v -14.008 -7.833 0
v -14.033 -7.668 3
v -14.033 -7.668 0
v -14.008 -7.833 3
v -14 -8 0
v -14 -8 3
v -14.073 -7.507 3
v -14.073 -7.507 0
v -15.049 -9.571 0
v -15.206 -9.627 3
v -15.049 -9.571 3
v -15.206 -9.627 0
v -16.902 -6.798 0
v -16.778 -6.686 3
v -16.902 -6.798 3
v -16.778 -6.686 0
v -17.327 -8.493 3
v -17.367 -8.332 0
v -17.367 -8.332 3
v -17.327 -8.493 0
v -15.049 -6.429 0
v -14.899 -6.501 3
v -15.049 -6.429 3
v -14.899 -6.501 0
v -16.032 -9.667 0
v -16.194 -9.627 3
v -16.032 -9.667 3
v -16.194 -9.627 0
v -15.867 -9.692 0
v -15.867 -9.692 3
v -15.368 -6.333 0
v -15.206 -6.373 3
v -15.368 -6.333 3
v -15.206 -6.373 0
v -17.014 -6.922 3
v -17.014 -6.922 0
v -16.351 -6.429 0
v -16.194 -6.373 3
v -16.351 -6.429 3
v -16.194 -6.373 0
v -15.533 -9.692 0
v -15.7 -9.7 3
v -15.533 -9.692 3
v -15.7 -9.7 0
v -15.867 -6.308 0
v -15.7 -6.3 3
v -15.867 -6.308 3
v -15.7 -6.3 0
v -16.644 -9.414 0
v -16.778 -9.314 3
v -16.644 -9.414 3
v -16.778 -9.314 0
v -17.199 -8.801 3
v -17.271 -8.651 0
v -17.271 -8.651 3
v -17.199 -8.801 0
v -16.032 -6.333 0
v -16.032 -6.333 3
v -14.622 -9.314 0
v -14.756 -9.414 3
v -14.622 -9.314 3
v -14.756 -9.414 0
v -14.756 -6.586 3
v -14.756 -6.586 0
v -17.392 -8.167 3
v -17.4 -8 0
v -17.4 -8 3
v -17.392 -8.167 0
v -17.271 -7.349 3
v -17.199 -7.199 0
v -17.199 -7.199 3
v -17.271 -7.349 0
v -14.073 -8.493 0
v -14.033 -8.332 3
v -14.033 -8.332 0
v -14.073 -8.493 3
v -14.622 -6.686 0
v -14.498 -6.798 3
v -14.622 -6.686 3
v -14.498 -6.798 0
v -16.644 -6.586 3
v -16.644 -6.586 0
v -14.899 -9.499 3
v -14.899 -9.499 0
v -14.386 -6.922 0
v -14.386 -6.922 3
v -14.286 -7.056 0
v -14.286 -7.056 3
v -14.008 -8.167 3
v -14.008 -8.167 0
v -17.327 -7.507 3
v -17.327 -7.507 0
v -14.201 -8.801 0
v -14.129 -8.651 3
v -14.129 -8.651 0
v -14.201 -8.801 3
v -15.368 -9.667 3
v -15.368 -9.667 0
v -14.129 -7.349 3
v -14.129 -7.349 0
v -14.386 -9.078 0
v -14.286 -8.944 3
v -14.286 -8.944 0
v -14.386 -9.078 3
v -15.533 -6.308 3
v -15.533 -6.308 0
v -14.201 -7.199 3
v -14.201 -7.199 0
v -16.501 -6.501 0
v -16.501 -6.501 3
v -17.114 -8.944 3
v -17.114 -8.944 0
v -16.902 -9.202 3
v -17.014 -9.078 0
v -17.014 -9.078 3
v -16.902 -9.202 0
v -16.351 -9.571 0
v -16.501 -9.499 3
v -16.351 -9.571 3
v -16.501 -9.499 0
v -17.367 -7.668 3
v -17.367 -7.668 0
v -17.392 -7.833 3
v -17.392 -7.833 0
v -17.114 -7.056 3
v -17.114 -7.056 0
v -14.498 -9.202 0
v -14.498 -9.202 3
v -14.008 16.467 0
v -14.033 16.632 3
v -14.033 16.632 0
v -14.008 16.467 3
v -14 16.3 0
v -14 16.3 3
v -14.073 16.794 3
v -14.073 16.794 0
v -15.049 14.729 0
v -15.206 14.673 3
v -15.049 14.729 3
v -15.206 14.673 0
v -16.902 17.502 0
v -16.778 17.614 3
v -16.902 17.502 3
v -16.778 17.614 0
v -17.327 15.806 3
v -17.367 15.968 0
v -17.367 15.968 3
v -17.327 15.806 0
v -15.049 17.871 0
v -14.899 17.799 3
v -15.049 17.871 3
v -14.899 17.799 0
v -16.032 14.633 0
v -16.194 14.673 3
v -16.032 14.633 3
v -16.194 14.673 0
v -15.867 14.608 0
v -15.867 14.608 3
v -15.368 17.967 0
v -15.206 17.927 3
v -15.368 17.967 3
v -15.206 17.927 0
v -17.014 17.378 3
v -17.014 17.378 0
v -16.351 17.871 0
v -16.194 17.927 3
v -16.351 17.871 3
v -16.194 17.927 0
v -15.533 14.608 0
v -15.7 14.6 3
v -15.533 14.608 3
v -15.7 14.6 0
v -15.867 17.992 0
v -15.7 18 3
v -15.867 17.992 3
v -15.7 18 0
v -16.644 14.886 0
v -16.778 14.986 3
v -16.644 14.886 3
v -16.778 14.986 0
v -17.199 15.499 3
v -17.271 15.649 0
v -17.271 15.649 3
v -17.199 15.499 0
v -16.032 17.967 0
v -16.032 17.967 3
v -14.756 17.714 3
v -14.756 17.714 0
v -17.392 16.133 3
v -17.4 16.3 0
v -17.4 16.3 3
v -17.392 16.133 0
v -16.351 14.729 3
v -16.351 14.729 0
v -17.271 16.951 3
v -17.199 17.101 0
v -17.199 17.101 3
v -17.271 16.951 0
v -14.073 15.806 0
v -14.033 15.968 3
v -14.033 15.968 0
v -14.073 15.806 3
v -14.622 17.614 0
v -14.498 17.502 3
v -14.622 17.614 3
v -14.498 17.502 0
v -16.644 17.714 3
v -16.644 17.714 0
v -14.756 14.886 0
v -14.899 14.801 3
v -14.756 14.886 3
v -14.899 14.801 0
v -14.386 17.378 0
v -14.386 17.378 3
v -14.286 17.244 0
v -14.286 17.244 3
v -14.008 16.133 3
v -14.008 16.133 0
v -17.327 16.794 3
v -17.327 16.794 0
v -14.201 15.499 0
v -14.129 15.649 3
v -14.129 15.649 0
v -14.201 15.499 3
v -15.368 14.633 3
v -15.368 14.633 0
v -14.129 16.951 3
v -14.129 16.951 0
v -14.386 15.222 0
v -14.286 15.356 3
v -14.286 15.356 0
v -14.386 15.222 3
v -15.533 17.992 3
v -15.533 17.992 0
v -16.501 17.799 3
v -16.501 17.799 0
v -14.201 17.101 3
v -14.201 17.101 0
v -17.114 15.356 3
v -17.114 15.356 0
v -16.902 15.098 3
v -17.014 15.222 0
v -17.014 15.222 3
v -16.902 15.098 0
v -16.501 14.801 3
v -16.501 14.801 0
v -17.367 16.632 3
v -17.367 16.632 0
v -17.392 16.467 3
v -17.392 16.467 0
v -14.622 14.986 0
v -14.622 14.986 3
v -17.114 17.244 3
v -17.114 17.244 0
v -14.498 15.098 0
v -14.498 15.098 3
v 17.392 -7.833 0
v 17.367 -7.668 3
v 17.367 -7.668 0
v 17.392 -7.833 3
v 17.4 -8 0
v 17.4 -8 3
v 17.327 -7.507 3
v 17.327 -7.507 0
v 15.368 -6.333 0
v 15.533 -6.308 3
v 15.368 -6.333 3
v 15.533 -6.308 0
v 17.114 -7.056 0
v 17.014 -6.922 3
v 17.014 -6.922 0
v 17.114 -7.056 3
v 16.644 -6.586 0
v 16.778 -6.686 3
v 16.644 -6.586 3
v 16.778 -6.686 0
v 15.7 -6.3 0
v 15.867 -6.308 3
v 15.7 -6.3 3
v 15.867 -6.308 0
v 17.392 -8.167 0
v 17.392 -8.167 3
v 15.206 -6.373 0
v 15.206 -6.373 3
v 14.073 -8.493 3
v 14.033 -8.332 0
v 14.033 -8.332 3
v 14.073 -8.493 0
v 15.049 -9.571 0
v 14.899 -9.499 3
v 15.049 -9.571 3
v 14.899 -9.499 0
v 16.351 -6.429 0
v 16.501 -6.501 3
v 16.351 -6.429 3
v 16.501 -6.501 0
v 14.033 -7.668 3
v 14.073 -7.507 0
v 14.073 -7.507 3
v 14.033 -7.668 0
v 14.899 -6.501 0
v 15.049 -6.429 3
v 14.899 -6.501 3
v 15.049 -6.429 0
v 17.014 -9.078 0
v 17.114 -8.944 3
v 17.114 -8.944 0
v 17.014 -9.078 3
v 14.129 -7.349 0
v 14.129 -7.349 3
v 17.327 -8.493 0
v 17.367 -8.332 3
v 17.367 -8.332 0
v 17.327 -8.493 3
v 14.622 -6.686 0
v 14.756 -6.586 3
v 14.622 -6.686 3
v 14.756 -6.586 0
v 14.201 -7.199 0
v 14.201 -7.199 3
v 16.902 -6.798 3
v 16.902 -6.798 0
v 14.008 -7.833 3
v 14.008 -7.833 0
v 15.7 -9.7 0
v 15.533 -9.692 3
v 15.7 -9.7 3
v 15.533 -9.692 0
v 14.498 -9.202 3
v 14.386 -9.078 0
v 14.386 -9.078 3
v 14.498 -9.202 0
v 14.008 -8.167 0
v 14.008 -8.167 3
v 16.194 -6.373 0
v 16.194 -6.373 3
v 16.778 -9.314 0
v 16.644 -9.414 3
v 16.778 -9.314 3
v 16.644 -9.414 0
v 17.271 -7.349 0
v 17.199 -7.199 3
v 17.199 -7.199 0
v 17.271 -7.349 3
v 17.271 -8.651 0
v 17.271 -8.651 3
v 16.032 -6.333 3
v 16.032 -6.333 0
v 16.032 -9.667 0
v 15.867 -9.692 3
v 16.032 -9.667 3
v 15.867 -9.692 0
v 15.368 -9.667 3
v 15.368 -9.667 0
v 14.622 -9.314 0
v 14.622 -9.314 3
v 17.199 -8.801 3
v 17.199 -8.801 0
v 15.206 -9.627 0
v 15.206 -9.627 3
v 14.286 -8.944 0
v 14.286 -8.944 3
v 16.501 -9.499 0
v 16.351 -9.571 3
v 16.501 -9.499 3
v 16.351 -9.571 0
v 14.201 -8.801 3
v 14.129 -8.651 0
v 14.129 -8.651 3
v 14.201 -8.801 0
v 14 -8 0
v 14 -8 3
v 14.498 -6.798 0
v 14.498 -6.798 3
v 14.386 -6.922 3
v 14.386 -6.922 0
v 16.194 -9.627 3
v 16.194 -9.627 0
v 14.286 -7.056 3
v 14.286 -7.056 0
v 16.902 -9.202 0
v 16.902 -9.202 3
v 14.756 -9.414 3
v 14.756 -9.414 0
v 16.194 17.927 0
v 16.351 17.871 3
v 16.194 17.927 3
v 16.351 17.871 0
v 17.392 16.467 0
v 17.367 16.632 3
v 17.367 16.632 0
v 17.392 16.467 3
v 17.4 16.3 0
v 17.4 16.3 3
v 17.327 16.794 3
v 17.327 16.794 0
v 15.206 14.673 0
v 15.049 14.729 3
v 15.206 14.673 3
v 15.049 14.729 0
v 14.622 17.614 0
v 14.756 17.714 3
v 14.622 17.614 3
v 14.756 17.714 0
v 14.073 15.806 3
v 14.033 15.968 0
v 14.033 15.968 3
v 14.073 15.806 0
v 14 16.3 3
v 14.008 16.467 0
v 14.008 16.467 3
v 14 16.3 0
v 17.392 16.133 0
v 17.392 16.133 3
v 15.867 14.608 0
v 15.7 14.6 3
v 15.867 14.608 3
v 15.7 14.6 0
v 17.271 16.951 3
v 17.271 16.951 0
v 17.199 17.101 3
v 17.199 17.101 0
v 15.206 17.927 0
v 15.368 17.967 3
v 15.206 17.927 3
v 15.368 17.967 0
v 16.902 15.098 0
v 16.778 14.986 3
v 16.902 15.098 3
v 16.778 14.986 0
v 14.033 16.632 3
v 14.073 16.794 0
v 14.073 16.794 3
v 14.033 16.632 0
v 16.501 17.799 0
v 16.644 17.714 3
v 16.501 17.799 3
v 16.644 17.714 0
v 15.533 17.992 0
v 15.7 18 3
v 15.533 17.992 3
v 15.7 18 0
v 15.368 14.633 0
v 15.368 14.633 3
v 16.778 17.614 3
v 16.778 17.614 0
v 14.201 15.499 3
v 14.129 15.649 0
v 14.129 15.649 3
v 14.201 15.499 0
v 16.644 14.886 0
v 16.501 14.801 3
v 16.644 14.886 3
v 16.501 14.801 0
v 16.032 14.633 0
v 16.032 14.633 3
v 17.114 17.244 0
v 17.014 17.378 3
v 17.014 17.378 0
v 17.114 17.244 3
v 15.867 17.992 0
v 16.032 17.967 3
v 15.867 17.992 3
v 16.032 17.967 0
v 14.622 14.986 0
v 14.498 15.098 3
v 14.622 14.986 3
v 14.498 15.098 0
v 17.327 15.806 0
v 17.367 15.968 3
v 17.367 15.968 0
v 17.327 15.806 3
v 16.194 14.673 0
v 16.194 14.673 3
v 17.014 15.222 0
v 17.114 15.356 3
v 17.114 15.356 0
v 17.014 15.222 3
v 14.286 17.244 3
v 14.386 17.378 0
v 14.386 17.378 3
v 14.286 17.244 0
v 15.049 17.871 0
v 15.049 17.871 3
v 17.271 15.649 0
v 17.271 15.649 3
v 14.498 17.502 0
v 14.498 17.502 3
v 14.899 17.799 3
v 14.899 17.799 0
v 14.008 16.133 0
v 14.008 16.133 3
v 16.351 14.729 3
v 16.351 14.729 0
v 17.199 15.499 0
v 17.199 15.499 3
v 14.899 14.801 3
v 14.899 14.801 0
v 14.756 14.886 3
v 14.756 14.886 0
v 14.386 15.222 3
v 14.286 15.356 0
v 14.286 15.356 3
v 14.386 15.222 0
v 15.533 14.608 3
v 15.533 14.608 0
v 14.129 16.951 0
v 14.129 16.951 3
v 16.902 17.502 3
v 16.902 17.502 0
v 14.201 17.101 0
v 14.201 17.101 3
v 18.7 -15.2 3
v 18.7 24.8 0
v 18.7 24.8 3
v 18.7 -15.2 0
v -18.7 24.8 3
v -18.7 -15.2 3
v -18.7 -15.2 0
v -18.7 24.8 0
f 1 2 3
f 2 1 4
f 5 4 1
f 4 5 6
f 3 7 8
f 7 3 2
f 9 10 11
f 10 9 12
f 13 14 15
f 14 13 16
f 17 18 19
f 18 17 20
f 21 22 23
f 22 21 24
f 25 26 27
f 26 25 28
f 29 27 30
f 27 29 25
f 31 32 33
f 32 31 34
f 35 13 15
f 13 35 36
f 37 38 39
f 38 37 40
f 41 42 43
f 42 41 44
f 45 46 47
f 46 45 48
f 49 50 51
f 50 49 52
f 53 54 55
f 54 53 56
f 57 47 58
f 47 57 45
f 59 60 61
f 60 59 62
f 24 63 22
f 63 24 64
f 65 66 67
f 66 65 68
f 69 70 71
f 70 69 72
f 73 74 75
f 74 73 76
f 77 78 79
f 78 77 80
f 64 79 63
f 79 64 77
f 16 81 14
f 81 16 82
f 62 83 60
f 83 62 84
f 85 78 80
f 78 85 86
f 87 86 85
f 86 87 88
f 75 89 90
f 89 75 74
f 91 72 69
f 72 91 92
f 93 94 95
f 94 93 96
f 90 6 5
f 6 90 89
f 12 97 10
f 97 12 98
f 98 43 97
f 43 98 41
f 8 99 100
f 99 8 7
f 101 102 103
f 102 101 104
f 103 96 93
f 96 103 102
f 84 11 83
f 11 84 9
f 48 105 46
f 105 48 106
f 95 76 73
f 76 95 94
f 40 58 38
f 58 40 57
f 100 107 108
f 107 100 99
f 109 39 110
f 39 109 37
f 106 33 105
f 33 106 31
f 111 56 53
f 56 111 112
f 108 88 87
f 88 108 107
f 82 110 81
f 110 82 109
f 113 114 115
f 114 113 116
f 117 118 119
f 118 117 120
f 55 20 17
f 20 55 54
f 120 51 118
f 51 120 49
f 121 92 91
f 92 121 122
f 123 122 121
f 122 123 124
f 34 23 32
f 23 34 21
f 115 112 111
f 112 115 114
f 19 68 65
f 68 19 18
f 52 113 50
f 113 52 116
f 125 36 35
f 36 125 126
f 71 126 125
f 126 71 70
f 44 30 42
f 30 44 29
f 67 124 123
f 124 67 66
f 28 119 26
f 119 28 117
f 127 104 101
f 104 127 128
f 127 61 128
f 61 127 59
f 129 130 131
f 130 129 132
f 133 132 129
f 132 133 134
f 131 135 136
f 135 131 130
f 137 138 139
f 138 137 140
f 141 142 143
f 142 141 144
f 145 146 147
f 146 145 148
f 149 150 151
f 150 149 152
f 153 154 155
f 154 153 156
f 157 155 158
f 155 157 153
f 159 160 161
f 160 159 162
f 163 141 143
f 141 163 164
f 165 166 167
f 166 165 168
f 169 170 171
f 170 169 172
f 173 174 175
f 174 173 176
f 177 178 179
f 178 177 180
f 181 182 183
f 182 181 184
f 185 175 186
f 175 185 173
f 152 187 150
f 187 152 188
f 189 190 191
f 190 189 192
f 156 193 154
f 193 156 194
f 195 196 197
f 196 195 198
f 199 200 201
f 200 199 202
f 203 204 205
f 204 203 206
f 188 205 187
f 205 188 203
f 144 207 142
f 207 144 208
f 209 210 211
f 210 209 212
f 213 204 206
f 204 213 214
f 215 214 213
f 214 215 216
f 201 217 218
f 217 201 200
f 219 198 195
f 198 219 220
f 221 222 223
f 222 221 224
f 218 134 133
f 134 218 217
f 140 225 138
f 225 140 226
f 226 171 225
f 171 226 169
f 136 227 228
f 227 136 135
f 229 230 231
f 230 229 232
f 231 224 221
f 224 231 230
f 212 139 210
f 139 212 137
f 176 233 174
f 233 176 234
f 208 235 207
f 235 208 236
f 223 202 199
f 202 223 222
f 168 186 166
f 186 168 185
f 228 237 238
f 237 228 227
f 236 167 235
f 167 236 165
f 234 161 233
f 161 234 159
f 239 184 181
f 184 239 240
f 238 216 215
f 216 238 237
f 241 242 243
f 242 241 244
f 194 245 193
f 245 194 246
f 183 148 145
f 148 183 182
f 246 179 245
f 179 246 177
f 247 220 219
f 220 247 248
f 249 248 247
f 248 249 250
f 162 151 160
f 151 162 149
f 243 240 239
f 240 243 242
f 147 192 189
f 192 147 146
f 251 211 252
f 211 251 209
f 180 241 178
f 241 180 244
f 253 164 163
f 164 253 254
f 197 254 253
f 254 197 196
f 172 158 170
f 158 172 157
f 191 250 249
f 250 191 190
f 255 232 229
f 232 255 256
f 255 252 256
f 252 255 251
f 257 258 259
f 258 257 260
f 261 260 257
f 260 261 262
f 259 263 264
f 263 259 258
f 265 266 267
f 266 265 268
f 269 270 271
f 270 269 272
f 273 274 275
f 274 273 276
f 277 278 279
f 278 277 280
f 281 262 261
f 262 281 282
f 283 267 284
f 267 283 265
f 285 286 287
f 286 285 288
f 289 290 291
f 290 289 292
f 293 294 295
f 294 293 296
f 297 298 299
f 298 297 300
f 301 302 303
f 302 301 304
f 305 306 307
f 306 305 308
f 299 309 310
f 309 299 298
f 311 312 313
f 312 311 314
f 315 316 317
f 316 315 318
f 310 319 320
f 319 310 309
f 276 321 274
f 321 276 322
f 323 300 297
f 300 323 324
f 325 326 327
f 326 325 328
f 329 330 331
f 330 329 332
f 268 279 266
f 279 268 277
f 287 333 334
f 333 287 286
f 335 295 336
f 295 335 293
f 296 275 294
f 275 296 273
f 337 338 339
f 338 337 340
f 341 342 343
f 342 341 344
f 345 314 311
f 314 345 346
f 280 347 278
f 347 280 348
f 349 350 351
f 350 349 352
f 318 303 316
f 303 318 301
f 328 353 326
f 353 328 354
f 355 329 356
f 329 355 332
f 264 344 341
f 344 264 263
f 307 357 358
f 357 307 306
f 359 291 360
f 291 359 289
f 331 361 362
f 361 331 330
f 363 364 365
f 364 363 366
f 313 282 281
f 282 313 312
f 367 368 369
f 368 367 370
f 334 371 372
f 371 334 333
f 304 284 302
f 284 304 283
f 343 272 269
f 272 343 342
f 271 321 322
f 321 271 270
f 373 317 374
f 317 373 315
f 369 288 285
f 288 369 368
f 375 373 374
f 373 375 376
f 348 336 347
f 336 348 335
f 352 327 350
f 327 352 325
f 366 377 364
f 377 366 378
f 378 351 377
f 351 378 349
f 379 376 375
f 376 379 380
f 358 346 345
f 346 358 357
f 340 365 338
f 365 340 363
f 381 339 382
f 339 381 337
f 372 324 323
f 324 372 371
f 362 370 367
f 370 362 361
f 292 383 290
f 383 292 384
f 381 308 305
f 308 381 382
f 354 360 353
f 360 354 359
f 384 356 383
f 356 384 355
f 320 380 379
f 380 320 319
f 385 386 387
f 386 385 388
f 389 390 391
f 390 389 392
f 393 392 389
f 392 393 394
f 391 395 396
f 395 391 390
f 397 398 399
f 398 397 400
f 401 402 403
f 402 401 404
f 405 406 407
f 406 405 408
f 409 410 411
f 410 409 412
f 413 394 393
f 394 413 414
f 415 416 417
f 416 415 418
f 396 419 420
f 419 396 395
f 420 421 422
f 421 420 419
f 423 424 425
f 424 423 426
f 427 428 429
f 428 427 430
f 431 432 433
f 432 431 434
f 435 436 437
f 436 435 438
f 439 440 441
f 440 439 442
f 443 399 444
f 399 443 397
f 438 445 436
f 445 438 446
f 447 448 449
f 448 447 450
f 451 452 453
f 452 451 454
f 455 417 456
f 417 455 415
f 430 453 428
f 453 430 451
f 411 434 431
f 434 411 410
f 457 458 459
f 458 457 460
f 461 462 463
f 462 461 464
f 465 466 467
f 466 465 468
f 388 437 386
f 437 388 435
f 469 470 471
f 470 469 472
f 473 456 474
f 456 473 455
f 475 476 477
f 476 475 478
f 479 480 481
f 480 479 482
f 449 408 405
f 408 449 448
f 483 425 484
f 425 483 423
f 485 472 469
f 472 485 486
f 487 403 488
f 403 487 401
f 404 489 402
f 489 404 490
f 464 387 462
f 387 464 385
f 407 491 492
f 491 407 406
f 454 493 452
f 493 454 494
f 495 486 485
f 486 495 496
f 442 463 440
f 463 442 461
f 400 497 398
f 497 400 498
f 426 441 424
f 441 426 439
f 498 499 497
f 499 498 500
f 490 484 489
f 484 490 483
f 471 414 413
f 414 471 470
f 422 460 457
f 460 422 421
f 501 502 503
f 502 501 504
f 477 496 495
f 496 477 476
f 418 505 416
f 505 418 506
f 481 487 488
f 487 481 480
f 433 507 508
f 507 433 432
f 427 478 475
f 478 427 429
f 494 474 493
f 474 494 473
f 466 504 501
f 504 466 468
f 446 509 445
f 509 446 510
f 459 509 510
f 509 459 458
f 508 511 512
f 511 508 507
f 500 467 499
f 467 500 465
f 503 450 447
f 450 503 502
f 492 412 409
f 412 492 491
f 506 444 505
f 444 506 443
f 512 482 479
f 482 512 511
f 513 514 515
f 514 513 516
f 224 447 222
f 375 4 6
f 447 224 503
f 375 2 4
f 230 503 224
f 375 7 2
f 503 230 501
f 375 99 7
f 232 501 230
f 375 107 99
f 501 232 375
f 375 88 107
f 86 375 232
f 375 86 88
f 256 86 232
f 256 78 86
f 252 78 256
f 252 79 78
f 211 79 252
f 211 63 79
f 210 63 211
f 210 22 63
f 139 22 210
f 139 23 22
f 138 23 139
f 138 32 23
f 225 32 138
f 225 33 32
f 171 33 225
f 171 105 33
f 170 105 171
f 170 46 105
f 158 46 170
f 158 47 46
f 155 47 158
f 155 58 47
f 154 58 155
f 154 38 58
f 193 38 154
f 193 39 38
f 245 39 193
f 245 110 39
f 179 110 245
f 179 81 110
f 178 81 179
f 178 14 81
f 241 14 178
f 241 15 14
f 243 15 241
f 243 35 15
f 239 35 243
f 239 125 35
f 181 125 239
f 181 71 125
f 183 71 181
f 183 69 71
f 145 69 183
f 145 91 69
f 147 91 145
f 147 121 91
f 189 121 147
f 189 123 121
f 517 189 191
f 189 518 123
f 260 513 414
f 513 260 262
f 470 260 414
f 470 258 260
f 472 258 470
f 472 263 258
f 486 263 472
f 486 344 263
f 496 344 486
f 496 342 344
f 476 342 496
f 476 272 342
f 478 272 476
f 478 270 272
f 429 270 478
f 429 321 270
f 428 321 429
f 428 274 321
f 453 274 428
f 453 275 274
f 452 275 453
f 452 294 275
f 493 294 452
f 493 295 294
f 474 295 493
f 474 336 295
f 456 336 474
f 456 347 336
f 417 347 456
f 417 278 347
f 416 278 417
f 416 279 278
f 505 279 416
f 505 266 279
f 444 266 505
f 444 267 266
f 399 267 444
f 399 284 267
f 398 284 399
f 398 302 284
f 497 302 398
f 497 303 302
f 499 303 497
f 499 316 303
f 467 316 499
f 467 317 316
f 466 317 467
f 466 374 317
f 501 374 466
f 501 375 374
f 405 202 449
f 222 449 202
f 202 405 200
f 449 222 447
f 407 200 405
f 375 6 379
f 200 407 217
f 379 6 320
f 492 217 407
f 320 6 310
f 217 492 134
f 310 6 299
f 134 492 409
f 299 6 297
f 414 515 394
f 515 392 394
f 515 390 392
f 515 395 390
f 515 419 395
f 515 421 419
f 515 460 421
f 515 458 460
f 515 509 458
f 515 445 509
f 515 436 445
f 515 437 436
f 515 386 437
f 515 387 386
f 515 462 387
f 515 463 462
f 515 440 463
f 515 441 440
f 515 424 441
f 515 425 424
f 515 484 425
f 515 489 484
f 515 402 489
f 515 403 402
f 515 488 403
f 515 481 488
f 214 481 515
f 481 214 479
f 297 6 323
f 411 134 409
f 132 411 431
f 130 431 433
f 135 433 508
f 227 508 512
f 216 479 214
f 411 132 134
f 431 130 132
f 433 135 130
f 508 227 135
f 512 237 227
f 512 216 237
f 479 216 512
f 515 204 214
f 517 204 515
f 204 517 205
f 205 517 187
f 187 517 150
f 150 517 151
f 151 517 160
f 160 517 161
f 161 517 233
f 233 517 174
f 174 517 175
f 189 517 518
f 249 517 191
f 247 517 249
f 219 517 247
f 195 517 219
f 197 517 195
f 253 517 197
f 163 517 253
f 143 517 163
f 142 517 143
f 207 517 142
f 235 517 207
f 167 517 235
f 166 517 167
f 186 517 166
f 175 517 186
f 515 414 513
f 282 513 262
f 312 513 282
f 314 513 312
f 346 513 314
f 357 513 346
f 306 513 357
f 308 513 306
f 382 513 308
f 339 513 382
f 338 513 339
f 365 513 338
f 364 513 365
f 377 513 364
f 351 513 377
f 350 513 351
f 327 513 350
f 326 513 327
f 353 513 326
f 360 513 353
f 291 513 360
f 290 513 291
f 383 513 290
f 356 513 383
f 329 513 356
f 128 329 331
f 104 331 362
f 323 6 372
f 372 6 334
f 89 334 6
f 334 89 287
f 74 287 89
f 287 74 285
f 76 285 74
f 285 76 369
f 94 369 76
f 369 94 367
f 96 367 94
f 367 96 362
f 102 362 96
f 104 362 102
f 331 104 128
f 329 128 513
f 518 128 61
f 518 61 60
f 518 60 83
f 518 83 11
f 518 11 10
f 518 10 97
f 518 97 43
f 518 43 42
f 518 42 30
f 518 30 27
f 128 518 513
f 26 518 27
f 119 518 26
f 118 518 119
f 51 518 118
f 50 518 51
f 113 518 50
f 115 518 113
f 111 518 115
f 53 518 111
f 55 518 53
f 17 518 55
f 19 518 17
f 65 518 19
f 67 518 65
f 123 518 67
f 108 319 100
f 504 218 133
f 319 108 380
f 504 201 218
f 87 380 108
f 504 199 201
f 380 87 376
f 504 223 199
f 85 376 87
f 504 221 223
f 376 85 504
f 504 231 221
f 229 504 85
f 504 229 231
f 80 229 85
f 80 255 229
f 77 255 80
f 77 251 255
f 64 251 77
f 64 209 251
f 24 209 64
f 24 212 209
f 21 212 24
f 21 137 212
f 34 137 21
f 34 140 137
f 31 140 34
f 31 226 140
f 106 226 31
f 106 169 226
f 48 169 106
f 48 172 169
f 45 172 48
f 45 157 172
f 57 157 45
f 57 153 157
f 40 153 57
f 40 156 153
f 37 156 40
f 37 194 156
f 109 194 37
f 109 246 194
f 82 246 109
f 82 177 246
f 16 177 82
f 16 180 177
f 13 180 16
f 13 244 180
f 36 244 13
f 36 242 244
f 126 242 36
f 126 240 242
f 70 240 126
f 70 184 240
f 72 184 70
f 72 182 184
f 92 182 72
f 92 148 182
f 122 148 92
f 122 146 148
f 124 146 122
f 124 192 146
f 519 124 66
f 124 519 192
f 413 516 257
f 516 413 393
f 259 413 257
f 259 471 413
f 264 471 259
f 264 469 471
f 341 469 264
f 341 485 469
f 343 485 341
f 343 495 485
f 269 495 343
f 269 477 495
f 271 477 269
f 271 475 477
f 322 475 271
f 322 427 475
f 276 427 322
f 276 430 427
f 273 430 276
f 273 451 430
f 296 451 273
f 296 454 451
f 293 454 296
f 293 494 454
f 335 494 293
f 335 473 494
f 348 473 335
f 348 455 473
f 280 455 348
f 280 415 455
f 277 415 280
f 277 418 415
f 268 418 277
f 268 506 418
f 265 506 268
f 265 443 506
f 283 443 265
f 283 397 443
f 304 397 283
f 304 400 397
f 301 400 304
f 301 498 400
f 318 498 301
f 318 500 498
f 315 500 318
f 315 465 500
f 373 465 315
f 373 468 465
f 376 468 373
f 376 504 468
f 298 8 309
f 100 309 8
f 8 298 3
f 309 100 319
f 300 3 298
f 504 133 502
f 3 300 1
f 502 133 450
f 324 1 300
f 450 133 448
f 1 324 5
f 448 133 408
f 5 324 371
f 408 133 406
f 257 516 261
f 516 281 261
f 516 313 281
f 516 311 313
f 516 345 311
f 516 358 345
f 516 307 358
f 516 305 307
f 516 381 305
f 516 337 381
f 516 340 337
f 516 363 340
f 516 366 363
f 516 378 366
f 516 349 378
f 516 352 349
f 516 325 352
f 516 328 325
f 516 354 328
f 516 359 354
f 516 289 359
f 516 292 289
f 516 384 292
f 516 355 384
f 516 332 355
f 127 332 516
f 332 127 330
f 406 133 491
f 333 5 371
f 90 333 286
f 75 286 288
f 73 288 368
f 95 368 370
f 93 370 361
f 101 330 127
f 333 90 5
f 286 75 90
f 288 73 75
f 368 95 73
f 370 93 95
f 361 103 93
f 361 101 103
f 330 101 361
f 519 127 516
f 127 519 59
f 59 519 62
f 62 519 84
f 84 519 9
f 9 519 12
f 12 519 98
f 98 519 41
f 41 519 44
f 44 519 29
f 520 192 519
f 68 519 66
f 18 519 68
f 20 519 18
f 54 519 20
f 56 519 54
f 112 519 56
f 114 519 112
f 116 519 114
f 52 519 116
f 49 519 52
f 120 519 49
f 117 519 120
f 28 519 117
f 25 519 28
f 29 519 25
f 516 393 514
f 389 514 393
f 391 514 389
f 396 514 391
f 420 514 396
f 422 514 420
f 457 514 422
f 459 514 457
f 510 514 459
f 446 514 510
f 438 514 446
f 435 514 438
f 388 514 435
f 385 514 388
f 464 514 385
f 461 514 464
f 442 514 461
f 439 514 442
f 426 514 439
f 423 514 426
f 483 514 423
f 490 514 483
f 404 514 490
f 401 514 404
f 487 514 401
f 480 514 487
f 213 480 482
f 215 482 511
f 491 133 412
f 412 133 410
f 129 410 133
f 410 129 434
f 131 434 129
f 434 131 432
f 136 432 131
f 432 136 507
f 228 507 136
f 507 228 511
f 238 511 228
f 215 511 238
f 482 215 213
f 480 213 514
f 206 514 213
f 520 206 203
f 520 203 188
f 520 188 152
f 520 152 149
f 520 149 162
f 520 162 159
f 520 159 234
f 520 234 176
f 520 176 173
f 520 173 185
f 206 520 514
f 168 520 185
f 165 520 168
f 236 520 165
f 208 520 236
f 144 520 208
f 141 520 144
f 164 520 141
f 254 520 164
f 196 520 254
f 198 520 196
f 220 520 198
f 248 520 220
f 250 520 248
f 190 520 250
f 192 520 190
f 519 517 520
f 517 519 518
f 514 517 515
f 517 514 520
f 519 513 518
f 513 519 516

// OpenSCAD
// file: ../params.scad
// =====================================================================
//  Pip v2 — assembly-first robot dog. Shared parameters (mm).
//  Design rules: docs/ASSEMBLY_FIRST_DESIGN.md §3. Every part is built
//  by straight-down moves; the precision lives in the parts.
//  Keep in sync with software/config.yaml (tests/test_cad_sync.py checks).
// =====================================================================
$fn = 64;

// ---------- Feetech STS3215 bus servo (12 V, 30 kg·cm) ------------------
// Measured from the SO-ARM100 project's STS3215 model. Servo frame used
// below: origin = output axis on the case top face, +Z = shaft, +X = long
// axis from the shaft toward the far end of the case.
servo_len       = 45.4;
servo_wid       = 24.8;
servo_case_h    = 32.0;   // top face -> case bottom
servo_bottom    = 4.0;    // rear idler disc + connector pins below the case
servo_shaft_off = 10.2;   // shaft centre -> near end of the case
horn_d          = 20.0;   // aluminium disc horn
horn_t          = 1.6;
horn_hole_sq    = 9.9;    // 4 tapped M3 holes on a 9.9 mm square
horn_screw_clear_d = 7.0; // centre spline-screw head clearance
servo_mass_g    = 55;     // assumed (not measured)

// ---------- one fastener for everything: M3 x 8 socket head -----------
screw_len   = 8;
m3_clear    = 3.4;
m3_pilot    = 2.6;        // self-tapping an M3 machine screw into PETG
fit         = 0.3;        // clearance around servo cases & docks
lead_in     = 1.5;        // chamfer on every mating edge (capture range)

// ---------- servo cup (the one standard servo holder) ------------------
cup_side    = 3.5;
cup_end     = 8.0;        // end walls carry the cap screws
cup_floor   = 2.5;
cup_depth   = servo_case_h + servo_bottom + cup_floor;     // 38.5
cup_x0      = -servo_shaft_off - fit - cup_end;            // -18.5
cup_x1      = servo_len - servo_shaft_off + fit + cup_end; //  43.5
cup_hw      = servo_wid / 2 + fit + cup_side;              //  16.2
cap_t       = 1.2;        // thinner than the horn so links clear it
cap_screw_x = [cup_x0 + cup_end / 2, cup_x1 - cup_end / 2];
cap_screw_y = 9;

// link plates bolt straight onto the horn: plate + horn = screw length
link_t      = screw_len - horn_t;                          // 6.4

// ---------- grip lug (rule 7): flats 20 mm apart + 3 mm datum notch ----
lug_w = 20; lug_h = 8; datum = 3;

// ---------- body / leg layout (body frame: X fwd, Y left, Z up) -------
bx        = 95;    // hip axis X (front +, rear -)
rim_y     = 45;    // |Y| of the pitch servo top face = tray side face
L2        = 100;   // hip axis -> knee axis
L3        = 100;   // knee axis -> foot ball centre
foot_d    = 22;
// lateral stack, measured outward from the pitch-servo top face
upper_in  = rim_y + horn_t;            // 46.6
upper_out = upper_in + link_t;         // 53.0 = knee servo top face
lower_in  = upper_out + horn_t;        // 54.6
lower_out = lower_in + link_t;         // 61.0
foot_y    = (lower_in + lower_out) / 2;// 57.8  (software: geometry.foot_y)

// tray
tray_wall   = 3;
tray_floor  = 3;
tray_z0     = cup_x0 - tray_floor;     // -21.5 (hip block bottom = floor top)
tray_z1     = cup_x1;                  //  43.5 (hip block top = deck bottom)
sock_wall   = 3;
sock_hw     = cup_hw + fit;            // socket half width in X
tongue_w    = 5; tongue_d = 2.5;
tongue_y    = -(rim_y - cup_depth / 2);// tongue centre (Y, right side)
sock_in_y   = -(rim_y - cup_depth) + fit;   // socket inboard wall inner face
tray_hx     = bx + sock_hw + tongue_d + sock_wall + 0.5;
deck_t      = 3;

// neck: pan servo cup built into the tray, rim just above the deck
pan_x     = 53;
pan_rim_z = tray_z1 + deck_t + 0.1;    // 46.6
bracket_z0 = pan_rim_z + horn_t;       // pan bracket sits on the horn
bracket_z1 = bracket_z0 + link_t;
// tilt servo stands upright in a sleeve on the bracket, shaft -> -Y
tilt_top_y = -14;                      // tilt servo top face (Y)
tilt_rest  = 3.5;                      // servo rests on ribs clear of the pan-horn screw heads
tilt_z     = bracket_z1 + tilt_rest + fit + (servo_len - servo_shaft_off); // tilt axis Z
sleeve_wall = 6;                       // thick X walls take the cap screws

echo(str("foot_y=", foot_y, "  tray=", 2*tray_hx, " x ", 2*rim_y,
         "  tilt axis z=", tilt_z));
// main file
// Print 1x, flat.
include <../lib.scad>
translate([-pan_x, 0, -sl_top]) sleeve_cap();
